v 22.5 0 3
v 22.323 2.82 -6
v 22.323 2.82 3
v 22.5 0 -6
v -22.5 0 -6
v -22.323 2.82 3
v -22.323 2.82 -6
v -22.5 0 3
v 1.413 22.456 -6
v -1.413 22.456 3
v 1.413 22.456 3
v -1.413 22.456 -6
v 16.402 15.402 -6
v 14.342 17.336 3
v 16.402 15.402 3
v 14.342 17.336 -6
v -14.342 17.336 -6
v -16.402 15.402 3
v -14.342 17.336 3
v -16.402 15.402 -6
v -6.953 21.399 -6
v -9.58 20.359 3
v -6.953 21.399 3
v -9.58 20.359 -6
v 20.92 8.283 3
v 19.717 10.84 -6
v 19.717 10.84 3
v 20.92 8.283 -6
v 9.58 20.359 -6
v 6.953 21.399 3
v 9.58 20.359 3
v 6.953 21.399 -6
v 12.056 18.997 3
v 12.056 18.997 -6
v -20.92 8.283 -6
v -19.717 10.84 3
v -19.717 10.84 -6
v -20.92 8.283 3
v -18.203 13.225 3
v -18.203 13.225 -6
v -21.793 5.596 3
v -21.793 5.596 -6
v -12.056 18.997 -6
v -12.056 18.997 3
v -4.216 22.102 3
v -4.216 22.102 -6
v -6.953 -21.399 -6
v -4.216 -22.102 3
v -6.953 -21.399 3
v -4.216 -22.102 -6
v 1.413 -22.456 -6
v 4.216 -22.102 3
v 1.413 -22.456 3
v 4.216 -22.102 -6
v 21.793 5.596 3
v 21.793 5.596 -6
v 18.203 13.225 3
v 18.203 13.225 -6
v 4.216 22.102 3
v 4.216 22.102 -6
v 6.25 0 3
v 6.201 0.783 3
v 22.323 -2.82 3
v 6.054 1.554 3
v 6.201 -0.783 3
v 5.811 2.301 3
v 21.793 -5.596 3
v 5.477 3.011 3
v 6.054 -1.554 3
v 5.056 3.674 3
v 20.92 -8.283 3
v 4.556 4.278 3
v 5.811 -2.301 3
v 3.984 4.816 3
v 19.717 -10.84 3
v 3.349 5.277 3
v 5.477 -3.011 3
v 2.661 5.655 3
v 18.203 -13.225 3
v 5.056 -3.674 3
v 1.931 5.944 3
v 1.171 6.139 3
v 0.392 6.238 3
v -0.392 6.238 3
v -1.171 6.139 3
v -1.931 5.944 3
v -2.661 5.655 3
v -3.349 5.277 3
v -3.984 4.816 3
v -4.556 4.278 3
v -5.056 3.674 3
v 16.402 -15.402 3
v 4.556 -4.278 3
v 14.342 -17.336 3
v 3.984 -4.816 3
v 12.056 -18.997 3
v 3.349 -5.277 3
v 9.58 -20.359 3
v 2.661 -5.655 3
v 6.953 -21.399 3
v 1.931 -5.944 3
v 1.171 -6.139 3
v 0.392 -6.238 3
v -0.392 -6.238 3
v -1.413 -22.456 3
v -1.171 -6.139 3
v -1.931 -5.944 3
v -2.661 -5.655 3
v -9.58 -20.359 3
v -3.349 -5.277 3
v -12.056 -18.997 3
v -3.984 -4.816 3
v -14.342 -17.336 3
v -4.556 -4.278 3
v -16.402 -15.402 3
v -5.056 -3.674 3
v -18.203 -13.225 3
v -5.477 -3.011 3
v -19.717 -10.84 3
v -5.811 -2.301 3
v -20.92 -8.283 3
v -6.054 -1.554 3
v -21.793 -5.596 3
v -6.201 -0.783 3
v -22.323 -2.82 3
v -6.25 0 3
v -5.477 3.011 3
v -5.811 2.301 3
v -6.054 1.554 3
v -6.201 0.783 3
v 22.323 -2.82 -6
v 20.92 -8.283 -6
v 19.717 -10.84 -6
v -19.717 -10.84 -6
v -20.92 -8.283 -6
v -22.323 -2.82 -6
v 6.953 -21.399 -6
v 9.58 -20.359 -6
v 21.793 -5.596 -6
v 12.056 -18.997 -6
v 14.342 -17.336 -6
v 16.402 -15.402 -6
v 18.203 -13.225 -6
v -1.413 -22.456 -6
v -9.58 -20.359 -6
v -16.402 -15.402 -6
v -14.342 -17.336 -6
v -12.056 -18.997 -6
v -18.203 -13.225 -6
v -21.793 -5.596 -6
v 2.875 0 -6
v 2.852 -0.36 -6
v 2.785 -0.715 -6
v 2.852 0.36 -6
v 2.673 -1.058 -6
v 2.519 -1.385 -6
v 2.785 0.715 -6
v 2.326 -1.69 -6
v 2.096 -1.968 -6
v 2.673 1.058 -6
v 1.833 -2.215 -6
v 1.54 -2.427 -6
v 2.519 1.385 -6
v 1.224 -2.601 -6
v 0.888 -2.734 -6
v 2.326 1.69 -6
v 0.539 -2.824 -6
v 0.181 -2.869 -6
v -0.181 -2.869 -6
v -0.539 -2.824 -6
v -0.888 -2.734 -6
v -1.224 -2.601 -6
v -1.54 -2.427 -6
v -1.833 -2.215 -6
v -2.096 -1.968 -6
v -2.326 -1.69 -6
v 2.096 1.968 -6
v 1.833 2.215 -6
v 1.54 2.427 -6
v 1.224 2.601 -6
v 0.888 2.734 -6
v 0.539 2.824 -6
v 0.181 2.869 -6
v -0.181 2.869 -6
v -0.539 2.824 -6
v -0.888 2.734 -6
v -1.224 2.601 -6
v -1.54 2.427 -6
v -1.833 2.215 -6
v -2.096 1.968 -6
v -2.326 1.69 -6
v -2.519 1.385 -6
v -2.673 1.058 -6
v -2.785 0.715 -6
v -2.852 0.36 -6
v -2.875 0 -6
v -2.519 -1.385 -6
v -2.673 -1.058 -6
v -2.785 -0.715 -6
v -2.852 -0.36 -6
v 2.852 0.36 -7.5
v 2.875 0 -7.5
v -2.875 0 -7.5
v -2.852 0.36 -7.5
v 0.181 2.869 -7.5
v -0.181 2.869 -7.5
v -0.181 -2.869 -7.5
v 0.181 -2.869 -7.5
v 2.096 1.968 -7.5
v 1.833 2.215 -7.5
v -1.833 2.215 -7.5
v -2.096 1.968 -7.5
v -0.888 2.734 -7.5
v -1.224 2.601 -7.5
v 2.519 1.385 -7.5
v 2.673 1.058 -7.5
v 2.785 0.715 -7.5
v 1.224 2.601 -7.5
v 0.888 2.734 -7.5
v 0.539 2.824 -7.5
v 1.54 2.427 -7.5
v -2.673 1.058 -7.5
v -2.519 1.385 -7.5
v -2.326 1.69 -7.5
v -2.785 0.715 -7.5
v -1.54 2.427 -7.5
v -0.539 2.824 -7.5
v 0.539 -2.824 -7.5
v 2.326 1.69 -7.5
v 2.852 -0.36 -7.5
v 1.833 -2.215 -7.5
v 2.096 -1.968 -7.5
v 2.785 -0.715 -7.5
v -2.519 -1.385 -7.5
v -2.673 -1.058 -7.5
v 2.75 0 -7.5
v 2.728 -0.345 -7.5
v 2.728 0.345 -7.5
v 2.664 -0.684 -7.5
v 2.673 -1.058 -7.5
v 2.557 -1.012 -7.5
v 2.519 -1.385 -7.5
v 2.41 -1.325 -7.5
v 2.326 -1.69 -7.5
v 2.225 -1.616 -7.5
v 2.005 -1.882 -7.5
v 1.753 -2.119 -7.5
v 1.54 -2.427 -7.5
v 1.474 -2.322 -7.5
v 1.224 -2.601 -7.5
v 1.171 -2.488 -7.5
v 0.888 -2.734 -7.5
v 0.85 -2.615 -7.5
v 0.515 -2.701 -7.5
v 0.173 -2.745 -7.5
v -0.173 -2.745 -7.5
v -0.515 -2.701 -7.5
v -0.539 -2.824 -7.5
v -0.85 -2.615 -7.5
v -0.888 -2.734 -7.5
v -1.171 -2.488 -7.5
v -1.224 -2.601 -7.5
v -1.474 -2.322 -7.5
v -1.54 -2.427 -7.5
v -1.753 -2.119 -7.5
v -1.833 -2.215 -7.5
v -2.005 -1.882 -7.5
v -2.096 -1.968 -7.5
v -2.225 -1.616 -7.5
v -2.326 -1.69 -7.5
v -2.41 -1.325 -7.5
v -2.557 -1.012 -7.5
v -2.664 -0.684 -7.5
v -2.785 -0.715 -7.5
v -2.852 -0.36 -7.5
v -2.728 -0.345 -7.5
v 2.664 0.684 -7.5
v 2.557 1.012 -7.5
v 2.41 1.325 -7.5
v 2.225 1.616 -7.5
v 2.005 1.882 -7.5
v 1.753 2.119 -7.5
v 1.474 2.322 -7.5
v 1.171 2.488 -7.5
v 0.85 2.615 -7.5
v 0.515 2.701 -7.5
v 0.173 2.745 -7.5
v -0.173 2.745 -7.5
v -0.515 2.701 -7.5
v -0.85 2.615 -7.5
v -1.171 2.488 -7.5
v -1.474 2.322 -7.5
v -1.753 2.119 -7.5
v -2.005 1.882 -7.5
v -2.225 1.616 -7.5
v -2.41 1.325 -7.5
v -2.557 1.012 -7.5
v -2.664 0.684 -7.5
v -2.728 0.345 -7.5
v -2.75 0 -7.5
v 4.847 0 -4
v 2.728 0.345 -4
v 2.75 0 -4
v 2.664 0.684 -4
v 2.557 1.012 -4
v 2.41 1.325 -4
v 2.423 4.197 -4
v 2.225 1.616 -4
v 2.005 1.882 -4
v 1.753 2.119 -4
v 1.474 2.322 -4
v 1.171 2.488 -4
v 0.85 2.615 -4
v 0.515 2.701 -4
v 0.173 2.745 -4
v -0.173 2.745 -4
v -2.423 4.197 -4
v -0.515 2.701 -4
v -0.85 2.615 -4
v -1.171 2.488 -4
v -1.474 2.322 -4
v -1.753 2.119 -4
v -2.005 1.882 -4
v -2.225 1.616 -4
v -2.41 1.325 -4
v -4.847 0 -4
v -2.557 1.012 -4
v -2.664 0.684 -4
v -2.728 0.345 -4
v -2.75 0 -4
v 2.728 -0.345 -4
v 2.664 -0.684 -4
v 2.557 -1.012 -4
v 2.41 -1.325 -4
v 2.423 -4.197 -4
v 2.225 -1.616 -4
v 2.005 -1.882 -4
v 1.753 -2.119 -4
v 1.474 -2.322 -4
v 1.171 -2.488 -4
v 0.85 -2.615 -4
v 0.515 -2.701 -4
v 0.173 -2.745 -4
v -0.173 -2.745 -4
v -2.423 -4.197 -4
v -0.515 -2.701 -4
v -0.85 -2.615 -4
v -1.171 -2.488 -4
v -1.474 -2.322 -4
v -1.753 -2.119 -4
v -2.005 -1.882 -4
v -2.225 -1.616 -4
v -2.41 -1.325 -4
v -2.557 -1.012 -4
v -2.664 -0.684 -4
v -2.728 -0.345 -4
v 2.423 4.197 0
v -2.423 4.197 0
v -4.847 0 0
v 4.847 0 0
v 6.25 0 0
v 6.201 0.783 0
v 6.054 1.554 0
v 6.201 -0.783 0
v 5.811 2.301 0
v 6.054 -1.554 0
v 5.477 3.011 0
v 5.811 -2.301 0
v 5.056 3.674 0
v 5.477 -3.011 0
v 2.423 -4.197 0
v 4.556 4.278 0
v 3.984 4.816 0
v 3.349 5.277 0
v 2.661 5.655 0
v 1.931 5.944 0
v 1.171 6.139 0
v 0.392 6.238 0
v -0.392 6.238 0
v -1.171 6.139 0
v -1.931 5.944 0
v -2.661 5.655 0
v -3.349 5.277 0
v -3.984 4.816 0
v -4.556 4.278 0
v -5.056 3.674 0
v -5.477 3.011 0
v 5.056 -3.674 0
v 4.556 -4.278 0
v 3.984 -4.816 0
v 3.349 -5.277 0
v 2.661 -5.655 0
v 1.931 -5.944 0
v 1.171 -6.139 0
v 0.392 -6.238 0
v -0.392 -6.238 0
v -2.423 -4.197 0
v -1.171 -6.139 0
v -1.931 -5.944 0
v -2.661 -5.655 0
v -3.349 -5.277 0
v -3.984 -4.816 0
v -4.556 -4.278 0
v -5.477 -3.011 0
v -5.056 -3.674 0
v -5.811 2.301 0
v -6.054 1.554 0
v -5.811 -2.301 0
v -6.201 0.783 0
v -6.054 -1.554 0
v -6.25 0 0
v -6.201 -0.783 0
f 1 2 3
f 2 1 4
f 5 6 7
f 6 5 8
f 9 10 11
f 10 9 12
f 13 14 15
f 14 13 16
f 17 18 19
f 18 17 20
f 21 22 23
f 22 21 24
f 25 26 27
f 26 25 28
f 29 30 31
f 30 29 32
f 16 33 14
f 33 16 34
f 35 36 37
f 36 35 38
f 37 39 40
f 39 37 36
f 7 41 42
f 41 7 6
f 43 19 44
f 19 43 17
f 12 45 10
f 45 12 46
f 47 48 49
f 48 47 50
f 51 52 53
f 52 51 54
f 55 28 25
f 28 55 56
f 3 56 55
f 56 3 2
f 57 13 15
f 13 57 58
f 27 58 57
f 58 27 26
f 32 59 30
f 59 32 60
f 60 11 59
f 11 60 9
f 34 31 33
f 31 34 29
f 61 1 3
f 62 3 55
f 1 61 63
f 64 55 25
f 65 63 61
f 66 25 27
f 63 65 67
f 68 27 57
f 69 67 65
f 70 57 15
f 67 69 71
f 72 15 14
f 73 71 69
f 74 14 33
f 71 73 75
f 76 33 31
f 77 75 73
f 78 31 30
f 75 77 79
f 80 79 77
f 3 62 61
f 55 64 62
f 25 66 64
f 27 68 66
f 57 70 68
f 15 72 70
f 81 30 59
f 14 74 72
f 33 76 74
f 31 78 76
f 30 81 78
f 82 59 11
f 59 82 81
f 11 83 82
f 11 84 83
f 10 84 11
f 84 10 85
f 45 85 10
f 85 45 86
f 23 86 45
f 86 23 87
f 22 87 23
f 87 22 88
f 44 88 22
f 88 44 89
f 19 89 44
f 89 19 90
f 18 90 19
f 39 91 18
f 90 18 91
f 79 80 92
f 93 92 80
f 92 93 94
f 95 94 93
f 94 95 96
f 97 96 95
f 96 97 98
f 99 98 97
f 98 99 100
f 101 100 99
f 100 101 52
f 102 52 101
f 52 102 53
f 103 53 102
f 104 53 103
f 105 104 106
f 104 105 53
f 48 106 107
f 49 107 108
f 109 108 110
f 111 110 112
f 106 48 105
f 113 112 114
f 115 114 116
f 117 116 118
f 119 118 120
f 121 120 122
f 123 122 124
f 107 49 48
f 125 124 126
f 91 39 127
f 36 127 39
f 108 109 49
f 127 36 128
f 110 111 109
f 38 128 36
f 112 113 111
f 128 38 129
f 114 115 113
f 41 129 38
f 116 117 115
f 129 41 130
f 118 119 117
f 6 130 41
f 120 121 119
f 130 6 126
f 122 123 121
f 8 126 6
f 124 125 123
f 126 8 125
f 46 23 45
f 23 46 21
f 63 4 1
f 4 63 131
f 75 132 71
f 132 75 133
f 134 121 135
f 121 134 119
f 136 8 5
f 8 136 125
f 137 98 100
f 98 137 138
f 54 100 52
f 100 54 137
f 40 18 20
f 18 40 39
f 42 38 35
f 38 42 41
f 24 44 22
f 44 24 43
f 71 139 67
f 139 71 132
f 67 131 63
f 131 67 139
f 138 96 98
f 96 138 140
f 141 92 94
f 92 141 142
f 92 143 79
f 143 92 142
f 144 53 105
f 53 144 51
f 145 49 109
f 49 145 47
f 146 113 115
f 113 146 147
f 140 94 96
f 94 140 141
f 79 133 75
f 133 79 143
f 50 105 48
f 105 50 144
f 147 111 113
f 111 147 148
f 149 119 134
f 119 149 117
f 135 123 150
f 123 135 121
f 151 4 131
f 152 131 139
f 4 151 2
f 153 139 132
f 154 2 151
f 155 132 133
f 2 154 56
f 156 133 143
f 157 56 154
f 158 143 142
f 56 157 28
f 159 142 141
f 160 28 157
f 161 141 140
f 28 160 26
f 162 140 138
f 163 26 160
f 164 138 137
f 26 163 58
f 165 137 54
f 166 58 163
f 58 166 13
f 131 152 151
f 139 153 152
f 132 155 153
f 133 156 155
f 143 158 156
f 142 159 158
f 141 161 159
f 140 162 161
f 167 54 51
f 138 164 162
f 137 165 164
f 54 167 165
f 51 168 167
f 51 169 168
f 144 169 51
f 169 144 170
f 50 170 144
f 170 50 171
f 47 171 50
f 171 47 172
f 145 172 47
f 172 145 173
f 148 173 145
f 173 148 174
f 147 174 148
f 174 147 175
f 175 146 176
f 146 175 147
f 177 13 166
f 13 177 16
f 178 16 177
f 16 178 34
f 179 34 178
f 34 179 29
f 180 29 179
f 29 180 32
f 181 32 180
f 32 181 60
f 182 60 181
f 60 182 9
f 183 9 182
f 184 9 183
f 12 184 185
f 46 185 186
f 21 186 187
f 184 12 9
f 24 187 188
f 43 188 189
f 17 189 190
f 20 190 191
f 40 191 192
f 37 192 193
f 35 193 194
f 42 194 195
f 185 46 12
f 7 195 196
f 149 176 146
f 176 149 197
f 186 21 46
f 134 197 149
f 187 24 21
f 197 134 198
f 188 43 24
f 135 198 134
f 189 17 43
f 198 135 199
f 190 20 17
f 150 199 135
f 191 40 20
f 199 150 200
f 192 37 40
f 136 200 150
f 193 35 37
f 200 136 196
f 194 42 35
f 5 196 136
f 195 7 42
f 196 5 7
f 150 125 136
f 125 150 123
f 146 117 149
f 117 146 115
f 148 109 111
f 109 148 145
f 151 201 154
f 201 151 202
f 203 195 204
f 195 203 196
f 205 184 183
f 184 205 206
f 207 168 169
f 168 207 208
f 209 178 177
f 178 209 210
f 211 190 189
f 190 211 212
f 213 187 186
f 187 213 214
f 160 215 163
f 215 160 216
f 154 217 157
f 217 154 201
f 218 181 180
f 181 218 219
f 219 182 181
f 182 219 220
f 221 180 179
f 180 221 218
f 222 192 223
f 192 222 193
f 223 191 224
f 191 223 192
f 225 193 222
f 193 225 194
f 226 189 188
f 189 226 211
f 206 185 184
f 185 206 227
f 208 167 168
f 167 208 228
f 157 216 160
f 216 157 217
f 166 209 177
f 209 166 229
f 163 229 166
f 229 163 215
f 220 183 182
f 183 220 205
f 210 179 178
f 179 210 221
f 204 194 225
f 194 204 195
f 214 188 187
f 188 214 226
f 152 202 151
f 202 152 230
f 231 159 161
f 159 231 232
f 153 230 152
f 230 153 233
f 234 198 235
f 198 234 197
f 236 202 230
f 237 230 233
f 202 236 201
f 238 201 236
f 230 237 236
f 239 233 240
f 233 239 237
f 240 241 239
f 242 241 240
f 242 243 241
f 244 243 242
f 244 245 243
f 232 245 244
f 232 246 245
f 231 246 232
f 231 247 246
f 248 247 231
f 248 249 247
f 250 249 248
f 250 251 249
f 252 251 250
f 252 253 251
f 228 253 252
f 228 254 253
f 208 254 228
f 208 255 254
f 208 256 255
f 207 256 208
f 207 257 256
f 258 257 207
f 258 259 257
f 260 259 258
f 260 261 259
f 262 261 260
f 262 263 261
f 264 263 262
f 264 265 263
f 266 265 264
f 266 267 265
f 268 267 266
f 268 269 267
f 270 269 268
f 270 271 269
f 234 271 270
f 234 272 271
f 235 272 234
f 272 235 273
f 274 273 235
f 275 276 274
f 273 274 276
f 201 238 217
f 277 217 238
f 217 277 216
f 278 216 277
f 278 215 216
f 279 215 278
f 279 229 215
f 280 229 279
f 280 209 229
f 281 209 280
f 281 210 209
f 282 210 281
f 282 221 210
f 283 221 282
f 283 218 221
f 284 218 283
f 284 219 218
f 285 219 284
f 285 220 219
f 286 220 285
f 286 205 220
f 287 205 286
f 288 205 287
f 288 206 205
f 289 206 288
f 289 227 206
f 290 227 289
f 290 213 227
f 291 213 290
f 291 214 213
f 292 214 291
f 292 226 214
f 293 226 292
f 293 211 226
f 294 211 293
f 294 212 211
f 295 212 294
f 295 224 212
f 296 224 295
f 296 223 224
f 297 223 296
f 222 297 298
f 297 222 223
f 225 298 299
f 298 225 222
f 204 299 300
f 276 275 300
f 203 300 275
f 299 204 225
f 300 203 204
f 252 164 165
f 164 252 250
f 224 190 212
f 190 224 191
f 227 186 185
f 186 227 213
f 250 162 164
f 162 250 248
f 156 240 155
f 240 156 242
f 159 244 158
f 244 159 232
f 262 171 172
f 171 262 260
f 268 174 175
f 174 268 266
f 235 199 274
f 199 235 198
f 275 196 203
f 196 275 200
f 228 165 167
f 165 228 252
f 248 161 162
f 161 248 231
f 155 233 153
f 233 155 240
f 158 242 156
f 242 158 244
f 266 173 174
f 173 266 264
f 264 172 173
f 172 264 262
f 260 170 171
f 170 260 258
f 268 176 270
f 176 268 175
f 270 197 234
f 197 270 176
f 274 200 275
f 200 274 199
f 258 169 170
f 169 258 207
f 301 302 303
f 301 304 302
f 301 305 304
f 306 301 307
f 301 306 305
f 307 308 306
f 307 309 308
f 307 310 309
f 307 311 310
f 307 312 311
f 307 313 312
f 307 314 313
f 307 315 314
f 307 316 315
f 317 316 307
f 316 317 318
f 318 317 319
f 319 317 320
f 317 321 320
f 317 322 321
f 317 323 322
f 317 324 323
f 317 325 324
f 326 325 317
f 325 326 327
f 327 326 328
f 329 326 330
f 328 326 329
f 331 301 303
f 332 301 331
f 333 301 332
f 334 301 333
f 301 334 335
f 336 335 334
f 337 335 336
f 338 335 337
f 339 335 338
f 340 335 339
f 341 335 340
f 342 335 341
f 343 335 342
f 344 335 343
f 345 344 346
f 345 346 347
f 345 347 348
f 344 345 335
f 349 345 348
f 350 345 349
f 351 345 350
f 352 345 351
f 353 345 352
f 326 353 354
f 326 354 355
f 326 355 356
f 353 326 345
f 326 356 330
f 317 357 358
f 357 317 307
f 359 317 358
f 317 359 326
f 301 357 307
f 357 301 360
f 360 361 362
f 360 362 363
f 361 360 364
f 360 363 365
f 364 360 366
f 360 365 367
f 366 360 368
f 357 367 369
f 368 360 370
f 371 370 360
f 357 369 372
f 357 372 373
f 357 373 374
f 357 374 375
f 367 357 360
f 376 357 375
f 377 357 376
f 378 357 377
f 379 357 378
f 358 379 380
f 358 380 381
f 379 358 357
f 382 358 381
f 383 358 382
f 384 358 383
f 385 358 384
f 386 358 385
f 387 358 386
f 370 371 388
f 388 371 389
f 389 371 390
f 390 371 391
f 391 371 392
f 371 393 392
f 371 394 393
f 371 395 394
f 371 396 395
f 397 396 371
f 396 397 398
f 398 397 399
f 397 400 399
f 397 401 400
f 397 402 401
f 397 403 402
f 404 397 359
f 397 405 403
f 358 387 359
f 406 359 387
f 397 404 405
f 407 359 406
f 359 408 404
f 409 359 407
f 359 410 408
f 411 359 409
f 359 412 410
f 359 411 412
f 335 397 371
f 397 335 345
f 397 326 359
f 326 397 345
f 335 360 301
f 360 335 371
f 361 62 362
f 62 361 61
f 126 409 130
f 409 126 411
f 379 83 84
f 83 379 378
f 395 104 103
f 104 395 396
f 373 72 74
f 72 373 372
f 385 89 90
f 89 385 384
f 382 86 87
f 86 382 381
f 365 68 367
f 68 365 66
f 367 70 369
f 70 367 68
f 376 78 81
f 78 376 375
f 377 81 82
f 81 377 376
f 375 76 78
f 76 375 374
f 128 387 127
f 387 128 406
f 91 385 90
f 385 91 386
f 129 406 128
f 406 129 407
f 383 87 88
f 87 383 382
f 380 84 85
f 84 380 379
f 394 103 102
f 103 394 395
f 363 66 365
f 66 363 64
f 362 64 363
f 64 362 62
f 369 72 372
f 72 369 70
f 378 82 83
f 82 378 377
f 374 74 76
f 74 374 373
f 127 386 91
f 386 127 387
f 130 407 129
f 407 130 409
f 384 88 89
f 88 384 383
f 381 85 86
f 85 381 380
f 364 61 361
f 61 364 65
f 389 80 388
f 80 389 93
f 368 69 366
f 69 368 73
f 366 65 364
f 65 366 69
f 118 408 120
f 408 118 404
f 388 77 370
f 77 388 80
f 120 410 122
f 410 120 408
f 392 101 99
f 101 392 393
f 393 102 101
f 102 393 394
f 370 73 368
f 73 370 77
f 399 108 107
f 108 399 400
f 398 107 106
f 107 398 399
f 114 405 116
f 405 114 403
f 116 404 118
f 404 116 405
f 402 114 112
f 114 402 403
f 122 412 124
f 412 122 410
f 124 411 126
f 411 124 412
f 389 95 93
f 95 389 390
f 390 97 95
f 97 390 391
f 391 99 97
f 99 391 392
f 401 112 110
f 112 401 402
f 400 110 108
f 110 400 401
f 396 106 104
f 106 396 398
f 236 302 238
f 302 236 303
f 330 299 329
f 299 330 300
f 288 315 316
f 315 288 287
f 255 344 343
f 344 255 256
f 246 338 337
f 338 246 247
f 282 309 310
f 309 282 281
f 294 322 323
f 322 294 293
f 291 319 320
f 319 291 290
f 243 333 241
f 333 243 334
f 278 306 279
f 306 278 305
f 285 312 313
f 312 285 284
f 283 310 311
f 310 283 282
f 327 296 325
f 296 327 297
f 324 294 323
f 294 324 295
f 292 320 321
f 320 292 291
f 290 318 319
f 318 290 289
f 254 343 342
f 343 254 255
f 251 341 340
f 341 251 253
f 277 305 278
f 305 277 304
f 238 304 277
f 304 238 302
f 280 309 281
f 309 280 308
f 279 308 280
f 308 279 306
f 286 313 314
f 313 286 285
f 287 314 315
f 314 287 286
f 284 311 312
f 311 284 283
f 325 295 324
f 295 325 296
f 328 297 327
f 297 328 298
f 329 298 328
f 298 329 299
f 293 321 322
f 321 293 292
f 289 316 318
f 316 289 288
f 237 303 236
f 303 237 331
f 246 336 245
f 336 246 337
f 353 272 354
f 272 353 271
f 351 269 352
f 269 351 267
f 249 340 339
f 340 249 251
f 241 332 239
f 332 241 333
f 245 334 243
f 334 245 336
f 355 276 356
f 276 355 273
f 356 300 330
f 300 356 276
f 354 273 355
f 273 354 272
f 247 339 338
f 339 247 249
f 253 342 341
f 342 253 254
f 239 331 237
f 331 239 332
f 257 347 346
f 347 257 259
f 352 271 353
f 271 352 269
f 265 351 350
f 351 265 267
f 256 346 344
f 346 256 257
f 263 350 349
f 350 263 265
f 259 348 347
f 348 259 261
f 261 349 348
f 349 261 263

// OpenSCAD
$fn = 50;

difference() {
	union() {
		translate(v = [0, 0, -6.0]) {
			cylinder(h = 9.0, r = 22.5);
		}
		#translate(v = [0, 0, -7.5]) {
			cylinder(h = 7.5, r = 2.875);
		}
	}
	union() {
		translate(v = [0, 0, 0]) {
			rotate(a = [0, 0, 0]) {
				difference() {
					union() {
						translate(v = [0, 0, -4]) {
							linear_extrude(height = 4) {
								polygon(points = [[4.8468, 0.0], [2.4234000000000004, 4.197451927062417], [-2.423399999999999, 4.197451927062417], [-4.8468, 5.935618106107392e-16], [-2.423400000000002, -4.197451927062416], [2.423399999999997, -4.197451927062419]]);
							}
						}
					}
					union();
				}
			}
		}
		#cylinder(h = 3, r = 6.25);
		#translate(v = [0, 0, -100.0]) {
			cylinder(h = 200, r = 2.75);
		}
	}
}
